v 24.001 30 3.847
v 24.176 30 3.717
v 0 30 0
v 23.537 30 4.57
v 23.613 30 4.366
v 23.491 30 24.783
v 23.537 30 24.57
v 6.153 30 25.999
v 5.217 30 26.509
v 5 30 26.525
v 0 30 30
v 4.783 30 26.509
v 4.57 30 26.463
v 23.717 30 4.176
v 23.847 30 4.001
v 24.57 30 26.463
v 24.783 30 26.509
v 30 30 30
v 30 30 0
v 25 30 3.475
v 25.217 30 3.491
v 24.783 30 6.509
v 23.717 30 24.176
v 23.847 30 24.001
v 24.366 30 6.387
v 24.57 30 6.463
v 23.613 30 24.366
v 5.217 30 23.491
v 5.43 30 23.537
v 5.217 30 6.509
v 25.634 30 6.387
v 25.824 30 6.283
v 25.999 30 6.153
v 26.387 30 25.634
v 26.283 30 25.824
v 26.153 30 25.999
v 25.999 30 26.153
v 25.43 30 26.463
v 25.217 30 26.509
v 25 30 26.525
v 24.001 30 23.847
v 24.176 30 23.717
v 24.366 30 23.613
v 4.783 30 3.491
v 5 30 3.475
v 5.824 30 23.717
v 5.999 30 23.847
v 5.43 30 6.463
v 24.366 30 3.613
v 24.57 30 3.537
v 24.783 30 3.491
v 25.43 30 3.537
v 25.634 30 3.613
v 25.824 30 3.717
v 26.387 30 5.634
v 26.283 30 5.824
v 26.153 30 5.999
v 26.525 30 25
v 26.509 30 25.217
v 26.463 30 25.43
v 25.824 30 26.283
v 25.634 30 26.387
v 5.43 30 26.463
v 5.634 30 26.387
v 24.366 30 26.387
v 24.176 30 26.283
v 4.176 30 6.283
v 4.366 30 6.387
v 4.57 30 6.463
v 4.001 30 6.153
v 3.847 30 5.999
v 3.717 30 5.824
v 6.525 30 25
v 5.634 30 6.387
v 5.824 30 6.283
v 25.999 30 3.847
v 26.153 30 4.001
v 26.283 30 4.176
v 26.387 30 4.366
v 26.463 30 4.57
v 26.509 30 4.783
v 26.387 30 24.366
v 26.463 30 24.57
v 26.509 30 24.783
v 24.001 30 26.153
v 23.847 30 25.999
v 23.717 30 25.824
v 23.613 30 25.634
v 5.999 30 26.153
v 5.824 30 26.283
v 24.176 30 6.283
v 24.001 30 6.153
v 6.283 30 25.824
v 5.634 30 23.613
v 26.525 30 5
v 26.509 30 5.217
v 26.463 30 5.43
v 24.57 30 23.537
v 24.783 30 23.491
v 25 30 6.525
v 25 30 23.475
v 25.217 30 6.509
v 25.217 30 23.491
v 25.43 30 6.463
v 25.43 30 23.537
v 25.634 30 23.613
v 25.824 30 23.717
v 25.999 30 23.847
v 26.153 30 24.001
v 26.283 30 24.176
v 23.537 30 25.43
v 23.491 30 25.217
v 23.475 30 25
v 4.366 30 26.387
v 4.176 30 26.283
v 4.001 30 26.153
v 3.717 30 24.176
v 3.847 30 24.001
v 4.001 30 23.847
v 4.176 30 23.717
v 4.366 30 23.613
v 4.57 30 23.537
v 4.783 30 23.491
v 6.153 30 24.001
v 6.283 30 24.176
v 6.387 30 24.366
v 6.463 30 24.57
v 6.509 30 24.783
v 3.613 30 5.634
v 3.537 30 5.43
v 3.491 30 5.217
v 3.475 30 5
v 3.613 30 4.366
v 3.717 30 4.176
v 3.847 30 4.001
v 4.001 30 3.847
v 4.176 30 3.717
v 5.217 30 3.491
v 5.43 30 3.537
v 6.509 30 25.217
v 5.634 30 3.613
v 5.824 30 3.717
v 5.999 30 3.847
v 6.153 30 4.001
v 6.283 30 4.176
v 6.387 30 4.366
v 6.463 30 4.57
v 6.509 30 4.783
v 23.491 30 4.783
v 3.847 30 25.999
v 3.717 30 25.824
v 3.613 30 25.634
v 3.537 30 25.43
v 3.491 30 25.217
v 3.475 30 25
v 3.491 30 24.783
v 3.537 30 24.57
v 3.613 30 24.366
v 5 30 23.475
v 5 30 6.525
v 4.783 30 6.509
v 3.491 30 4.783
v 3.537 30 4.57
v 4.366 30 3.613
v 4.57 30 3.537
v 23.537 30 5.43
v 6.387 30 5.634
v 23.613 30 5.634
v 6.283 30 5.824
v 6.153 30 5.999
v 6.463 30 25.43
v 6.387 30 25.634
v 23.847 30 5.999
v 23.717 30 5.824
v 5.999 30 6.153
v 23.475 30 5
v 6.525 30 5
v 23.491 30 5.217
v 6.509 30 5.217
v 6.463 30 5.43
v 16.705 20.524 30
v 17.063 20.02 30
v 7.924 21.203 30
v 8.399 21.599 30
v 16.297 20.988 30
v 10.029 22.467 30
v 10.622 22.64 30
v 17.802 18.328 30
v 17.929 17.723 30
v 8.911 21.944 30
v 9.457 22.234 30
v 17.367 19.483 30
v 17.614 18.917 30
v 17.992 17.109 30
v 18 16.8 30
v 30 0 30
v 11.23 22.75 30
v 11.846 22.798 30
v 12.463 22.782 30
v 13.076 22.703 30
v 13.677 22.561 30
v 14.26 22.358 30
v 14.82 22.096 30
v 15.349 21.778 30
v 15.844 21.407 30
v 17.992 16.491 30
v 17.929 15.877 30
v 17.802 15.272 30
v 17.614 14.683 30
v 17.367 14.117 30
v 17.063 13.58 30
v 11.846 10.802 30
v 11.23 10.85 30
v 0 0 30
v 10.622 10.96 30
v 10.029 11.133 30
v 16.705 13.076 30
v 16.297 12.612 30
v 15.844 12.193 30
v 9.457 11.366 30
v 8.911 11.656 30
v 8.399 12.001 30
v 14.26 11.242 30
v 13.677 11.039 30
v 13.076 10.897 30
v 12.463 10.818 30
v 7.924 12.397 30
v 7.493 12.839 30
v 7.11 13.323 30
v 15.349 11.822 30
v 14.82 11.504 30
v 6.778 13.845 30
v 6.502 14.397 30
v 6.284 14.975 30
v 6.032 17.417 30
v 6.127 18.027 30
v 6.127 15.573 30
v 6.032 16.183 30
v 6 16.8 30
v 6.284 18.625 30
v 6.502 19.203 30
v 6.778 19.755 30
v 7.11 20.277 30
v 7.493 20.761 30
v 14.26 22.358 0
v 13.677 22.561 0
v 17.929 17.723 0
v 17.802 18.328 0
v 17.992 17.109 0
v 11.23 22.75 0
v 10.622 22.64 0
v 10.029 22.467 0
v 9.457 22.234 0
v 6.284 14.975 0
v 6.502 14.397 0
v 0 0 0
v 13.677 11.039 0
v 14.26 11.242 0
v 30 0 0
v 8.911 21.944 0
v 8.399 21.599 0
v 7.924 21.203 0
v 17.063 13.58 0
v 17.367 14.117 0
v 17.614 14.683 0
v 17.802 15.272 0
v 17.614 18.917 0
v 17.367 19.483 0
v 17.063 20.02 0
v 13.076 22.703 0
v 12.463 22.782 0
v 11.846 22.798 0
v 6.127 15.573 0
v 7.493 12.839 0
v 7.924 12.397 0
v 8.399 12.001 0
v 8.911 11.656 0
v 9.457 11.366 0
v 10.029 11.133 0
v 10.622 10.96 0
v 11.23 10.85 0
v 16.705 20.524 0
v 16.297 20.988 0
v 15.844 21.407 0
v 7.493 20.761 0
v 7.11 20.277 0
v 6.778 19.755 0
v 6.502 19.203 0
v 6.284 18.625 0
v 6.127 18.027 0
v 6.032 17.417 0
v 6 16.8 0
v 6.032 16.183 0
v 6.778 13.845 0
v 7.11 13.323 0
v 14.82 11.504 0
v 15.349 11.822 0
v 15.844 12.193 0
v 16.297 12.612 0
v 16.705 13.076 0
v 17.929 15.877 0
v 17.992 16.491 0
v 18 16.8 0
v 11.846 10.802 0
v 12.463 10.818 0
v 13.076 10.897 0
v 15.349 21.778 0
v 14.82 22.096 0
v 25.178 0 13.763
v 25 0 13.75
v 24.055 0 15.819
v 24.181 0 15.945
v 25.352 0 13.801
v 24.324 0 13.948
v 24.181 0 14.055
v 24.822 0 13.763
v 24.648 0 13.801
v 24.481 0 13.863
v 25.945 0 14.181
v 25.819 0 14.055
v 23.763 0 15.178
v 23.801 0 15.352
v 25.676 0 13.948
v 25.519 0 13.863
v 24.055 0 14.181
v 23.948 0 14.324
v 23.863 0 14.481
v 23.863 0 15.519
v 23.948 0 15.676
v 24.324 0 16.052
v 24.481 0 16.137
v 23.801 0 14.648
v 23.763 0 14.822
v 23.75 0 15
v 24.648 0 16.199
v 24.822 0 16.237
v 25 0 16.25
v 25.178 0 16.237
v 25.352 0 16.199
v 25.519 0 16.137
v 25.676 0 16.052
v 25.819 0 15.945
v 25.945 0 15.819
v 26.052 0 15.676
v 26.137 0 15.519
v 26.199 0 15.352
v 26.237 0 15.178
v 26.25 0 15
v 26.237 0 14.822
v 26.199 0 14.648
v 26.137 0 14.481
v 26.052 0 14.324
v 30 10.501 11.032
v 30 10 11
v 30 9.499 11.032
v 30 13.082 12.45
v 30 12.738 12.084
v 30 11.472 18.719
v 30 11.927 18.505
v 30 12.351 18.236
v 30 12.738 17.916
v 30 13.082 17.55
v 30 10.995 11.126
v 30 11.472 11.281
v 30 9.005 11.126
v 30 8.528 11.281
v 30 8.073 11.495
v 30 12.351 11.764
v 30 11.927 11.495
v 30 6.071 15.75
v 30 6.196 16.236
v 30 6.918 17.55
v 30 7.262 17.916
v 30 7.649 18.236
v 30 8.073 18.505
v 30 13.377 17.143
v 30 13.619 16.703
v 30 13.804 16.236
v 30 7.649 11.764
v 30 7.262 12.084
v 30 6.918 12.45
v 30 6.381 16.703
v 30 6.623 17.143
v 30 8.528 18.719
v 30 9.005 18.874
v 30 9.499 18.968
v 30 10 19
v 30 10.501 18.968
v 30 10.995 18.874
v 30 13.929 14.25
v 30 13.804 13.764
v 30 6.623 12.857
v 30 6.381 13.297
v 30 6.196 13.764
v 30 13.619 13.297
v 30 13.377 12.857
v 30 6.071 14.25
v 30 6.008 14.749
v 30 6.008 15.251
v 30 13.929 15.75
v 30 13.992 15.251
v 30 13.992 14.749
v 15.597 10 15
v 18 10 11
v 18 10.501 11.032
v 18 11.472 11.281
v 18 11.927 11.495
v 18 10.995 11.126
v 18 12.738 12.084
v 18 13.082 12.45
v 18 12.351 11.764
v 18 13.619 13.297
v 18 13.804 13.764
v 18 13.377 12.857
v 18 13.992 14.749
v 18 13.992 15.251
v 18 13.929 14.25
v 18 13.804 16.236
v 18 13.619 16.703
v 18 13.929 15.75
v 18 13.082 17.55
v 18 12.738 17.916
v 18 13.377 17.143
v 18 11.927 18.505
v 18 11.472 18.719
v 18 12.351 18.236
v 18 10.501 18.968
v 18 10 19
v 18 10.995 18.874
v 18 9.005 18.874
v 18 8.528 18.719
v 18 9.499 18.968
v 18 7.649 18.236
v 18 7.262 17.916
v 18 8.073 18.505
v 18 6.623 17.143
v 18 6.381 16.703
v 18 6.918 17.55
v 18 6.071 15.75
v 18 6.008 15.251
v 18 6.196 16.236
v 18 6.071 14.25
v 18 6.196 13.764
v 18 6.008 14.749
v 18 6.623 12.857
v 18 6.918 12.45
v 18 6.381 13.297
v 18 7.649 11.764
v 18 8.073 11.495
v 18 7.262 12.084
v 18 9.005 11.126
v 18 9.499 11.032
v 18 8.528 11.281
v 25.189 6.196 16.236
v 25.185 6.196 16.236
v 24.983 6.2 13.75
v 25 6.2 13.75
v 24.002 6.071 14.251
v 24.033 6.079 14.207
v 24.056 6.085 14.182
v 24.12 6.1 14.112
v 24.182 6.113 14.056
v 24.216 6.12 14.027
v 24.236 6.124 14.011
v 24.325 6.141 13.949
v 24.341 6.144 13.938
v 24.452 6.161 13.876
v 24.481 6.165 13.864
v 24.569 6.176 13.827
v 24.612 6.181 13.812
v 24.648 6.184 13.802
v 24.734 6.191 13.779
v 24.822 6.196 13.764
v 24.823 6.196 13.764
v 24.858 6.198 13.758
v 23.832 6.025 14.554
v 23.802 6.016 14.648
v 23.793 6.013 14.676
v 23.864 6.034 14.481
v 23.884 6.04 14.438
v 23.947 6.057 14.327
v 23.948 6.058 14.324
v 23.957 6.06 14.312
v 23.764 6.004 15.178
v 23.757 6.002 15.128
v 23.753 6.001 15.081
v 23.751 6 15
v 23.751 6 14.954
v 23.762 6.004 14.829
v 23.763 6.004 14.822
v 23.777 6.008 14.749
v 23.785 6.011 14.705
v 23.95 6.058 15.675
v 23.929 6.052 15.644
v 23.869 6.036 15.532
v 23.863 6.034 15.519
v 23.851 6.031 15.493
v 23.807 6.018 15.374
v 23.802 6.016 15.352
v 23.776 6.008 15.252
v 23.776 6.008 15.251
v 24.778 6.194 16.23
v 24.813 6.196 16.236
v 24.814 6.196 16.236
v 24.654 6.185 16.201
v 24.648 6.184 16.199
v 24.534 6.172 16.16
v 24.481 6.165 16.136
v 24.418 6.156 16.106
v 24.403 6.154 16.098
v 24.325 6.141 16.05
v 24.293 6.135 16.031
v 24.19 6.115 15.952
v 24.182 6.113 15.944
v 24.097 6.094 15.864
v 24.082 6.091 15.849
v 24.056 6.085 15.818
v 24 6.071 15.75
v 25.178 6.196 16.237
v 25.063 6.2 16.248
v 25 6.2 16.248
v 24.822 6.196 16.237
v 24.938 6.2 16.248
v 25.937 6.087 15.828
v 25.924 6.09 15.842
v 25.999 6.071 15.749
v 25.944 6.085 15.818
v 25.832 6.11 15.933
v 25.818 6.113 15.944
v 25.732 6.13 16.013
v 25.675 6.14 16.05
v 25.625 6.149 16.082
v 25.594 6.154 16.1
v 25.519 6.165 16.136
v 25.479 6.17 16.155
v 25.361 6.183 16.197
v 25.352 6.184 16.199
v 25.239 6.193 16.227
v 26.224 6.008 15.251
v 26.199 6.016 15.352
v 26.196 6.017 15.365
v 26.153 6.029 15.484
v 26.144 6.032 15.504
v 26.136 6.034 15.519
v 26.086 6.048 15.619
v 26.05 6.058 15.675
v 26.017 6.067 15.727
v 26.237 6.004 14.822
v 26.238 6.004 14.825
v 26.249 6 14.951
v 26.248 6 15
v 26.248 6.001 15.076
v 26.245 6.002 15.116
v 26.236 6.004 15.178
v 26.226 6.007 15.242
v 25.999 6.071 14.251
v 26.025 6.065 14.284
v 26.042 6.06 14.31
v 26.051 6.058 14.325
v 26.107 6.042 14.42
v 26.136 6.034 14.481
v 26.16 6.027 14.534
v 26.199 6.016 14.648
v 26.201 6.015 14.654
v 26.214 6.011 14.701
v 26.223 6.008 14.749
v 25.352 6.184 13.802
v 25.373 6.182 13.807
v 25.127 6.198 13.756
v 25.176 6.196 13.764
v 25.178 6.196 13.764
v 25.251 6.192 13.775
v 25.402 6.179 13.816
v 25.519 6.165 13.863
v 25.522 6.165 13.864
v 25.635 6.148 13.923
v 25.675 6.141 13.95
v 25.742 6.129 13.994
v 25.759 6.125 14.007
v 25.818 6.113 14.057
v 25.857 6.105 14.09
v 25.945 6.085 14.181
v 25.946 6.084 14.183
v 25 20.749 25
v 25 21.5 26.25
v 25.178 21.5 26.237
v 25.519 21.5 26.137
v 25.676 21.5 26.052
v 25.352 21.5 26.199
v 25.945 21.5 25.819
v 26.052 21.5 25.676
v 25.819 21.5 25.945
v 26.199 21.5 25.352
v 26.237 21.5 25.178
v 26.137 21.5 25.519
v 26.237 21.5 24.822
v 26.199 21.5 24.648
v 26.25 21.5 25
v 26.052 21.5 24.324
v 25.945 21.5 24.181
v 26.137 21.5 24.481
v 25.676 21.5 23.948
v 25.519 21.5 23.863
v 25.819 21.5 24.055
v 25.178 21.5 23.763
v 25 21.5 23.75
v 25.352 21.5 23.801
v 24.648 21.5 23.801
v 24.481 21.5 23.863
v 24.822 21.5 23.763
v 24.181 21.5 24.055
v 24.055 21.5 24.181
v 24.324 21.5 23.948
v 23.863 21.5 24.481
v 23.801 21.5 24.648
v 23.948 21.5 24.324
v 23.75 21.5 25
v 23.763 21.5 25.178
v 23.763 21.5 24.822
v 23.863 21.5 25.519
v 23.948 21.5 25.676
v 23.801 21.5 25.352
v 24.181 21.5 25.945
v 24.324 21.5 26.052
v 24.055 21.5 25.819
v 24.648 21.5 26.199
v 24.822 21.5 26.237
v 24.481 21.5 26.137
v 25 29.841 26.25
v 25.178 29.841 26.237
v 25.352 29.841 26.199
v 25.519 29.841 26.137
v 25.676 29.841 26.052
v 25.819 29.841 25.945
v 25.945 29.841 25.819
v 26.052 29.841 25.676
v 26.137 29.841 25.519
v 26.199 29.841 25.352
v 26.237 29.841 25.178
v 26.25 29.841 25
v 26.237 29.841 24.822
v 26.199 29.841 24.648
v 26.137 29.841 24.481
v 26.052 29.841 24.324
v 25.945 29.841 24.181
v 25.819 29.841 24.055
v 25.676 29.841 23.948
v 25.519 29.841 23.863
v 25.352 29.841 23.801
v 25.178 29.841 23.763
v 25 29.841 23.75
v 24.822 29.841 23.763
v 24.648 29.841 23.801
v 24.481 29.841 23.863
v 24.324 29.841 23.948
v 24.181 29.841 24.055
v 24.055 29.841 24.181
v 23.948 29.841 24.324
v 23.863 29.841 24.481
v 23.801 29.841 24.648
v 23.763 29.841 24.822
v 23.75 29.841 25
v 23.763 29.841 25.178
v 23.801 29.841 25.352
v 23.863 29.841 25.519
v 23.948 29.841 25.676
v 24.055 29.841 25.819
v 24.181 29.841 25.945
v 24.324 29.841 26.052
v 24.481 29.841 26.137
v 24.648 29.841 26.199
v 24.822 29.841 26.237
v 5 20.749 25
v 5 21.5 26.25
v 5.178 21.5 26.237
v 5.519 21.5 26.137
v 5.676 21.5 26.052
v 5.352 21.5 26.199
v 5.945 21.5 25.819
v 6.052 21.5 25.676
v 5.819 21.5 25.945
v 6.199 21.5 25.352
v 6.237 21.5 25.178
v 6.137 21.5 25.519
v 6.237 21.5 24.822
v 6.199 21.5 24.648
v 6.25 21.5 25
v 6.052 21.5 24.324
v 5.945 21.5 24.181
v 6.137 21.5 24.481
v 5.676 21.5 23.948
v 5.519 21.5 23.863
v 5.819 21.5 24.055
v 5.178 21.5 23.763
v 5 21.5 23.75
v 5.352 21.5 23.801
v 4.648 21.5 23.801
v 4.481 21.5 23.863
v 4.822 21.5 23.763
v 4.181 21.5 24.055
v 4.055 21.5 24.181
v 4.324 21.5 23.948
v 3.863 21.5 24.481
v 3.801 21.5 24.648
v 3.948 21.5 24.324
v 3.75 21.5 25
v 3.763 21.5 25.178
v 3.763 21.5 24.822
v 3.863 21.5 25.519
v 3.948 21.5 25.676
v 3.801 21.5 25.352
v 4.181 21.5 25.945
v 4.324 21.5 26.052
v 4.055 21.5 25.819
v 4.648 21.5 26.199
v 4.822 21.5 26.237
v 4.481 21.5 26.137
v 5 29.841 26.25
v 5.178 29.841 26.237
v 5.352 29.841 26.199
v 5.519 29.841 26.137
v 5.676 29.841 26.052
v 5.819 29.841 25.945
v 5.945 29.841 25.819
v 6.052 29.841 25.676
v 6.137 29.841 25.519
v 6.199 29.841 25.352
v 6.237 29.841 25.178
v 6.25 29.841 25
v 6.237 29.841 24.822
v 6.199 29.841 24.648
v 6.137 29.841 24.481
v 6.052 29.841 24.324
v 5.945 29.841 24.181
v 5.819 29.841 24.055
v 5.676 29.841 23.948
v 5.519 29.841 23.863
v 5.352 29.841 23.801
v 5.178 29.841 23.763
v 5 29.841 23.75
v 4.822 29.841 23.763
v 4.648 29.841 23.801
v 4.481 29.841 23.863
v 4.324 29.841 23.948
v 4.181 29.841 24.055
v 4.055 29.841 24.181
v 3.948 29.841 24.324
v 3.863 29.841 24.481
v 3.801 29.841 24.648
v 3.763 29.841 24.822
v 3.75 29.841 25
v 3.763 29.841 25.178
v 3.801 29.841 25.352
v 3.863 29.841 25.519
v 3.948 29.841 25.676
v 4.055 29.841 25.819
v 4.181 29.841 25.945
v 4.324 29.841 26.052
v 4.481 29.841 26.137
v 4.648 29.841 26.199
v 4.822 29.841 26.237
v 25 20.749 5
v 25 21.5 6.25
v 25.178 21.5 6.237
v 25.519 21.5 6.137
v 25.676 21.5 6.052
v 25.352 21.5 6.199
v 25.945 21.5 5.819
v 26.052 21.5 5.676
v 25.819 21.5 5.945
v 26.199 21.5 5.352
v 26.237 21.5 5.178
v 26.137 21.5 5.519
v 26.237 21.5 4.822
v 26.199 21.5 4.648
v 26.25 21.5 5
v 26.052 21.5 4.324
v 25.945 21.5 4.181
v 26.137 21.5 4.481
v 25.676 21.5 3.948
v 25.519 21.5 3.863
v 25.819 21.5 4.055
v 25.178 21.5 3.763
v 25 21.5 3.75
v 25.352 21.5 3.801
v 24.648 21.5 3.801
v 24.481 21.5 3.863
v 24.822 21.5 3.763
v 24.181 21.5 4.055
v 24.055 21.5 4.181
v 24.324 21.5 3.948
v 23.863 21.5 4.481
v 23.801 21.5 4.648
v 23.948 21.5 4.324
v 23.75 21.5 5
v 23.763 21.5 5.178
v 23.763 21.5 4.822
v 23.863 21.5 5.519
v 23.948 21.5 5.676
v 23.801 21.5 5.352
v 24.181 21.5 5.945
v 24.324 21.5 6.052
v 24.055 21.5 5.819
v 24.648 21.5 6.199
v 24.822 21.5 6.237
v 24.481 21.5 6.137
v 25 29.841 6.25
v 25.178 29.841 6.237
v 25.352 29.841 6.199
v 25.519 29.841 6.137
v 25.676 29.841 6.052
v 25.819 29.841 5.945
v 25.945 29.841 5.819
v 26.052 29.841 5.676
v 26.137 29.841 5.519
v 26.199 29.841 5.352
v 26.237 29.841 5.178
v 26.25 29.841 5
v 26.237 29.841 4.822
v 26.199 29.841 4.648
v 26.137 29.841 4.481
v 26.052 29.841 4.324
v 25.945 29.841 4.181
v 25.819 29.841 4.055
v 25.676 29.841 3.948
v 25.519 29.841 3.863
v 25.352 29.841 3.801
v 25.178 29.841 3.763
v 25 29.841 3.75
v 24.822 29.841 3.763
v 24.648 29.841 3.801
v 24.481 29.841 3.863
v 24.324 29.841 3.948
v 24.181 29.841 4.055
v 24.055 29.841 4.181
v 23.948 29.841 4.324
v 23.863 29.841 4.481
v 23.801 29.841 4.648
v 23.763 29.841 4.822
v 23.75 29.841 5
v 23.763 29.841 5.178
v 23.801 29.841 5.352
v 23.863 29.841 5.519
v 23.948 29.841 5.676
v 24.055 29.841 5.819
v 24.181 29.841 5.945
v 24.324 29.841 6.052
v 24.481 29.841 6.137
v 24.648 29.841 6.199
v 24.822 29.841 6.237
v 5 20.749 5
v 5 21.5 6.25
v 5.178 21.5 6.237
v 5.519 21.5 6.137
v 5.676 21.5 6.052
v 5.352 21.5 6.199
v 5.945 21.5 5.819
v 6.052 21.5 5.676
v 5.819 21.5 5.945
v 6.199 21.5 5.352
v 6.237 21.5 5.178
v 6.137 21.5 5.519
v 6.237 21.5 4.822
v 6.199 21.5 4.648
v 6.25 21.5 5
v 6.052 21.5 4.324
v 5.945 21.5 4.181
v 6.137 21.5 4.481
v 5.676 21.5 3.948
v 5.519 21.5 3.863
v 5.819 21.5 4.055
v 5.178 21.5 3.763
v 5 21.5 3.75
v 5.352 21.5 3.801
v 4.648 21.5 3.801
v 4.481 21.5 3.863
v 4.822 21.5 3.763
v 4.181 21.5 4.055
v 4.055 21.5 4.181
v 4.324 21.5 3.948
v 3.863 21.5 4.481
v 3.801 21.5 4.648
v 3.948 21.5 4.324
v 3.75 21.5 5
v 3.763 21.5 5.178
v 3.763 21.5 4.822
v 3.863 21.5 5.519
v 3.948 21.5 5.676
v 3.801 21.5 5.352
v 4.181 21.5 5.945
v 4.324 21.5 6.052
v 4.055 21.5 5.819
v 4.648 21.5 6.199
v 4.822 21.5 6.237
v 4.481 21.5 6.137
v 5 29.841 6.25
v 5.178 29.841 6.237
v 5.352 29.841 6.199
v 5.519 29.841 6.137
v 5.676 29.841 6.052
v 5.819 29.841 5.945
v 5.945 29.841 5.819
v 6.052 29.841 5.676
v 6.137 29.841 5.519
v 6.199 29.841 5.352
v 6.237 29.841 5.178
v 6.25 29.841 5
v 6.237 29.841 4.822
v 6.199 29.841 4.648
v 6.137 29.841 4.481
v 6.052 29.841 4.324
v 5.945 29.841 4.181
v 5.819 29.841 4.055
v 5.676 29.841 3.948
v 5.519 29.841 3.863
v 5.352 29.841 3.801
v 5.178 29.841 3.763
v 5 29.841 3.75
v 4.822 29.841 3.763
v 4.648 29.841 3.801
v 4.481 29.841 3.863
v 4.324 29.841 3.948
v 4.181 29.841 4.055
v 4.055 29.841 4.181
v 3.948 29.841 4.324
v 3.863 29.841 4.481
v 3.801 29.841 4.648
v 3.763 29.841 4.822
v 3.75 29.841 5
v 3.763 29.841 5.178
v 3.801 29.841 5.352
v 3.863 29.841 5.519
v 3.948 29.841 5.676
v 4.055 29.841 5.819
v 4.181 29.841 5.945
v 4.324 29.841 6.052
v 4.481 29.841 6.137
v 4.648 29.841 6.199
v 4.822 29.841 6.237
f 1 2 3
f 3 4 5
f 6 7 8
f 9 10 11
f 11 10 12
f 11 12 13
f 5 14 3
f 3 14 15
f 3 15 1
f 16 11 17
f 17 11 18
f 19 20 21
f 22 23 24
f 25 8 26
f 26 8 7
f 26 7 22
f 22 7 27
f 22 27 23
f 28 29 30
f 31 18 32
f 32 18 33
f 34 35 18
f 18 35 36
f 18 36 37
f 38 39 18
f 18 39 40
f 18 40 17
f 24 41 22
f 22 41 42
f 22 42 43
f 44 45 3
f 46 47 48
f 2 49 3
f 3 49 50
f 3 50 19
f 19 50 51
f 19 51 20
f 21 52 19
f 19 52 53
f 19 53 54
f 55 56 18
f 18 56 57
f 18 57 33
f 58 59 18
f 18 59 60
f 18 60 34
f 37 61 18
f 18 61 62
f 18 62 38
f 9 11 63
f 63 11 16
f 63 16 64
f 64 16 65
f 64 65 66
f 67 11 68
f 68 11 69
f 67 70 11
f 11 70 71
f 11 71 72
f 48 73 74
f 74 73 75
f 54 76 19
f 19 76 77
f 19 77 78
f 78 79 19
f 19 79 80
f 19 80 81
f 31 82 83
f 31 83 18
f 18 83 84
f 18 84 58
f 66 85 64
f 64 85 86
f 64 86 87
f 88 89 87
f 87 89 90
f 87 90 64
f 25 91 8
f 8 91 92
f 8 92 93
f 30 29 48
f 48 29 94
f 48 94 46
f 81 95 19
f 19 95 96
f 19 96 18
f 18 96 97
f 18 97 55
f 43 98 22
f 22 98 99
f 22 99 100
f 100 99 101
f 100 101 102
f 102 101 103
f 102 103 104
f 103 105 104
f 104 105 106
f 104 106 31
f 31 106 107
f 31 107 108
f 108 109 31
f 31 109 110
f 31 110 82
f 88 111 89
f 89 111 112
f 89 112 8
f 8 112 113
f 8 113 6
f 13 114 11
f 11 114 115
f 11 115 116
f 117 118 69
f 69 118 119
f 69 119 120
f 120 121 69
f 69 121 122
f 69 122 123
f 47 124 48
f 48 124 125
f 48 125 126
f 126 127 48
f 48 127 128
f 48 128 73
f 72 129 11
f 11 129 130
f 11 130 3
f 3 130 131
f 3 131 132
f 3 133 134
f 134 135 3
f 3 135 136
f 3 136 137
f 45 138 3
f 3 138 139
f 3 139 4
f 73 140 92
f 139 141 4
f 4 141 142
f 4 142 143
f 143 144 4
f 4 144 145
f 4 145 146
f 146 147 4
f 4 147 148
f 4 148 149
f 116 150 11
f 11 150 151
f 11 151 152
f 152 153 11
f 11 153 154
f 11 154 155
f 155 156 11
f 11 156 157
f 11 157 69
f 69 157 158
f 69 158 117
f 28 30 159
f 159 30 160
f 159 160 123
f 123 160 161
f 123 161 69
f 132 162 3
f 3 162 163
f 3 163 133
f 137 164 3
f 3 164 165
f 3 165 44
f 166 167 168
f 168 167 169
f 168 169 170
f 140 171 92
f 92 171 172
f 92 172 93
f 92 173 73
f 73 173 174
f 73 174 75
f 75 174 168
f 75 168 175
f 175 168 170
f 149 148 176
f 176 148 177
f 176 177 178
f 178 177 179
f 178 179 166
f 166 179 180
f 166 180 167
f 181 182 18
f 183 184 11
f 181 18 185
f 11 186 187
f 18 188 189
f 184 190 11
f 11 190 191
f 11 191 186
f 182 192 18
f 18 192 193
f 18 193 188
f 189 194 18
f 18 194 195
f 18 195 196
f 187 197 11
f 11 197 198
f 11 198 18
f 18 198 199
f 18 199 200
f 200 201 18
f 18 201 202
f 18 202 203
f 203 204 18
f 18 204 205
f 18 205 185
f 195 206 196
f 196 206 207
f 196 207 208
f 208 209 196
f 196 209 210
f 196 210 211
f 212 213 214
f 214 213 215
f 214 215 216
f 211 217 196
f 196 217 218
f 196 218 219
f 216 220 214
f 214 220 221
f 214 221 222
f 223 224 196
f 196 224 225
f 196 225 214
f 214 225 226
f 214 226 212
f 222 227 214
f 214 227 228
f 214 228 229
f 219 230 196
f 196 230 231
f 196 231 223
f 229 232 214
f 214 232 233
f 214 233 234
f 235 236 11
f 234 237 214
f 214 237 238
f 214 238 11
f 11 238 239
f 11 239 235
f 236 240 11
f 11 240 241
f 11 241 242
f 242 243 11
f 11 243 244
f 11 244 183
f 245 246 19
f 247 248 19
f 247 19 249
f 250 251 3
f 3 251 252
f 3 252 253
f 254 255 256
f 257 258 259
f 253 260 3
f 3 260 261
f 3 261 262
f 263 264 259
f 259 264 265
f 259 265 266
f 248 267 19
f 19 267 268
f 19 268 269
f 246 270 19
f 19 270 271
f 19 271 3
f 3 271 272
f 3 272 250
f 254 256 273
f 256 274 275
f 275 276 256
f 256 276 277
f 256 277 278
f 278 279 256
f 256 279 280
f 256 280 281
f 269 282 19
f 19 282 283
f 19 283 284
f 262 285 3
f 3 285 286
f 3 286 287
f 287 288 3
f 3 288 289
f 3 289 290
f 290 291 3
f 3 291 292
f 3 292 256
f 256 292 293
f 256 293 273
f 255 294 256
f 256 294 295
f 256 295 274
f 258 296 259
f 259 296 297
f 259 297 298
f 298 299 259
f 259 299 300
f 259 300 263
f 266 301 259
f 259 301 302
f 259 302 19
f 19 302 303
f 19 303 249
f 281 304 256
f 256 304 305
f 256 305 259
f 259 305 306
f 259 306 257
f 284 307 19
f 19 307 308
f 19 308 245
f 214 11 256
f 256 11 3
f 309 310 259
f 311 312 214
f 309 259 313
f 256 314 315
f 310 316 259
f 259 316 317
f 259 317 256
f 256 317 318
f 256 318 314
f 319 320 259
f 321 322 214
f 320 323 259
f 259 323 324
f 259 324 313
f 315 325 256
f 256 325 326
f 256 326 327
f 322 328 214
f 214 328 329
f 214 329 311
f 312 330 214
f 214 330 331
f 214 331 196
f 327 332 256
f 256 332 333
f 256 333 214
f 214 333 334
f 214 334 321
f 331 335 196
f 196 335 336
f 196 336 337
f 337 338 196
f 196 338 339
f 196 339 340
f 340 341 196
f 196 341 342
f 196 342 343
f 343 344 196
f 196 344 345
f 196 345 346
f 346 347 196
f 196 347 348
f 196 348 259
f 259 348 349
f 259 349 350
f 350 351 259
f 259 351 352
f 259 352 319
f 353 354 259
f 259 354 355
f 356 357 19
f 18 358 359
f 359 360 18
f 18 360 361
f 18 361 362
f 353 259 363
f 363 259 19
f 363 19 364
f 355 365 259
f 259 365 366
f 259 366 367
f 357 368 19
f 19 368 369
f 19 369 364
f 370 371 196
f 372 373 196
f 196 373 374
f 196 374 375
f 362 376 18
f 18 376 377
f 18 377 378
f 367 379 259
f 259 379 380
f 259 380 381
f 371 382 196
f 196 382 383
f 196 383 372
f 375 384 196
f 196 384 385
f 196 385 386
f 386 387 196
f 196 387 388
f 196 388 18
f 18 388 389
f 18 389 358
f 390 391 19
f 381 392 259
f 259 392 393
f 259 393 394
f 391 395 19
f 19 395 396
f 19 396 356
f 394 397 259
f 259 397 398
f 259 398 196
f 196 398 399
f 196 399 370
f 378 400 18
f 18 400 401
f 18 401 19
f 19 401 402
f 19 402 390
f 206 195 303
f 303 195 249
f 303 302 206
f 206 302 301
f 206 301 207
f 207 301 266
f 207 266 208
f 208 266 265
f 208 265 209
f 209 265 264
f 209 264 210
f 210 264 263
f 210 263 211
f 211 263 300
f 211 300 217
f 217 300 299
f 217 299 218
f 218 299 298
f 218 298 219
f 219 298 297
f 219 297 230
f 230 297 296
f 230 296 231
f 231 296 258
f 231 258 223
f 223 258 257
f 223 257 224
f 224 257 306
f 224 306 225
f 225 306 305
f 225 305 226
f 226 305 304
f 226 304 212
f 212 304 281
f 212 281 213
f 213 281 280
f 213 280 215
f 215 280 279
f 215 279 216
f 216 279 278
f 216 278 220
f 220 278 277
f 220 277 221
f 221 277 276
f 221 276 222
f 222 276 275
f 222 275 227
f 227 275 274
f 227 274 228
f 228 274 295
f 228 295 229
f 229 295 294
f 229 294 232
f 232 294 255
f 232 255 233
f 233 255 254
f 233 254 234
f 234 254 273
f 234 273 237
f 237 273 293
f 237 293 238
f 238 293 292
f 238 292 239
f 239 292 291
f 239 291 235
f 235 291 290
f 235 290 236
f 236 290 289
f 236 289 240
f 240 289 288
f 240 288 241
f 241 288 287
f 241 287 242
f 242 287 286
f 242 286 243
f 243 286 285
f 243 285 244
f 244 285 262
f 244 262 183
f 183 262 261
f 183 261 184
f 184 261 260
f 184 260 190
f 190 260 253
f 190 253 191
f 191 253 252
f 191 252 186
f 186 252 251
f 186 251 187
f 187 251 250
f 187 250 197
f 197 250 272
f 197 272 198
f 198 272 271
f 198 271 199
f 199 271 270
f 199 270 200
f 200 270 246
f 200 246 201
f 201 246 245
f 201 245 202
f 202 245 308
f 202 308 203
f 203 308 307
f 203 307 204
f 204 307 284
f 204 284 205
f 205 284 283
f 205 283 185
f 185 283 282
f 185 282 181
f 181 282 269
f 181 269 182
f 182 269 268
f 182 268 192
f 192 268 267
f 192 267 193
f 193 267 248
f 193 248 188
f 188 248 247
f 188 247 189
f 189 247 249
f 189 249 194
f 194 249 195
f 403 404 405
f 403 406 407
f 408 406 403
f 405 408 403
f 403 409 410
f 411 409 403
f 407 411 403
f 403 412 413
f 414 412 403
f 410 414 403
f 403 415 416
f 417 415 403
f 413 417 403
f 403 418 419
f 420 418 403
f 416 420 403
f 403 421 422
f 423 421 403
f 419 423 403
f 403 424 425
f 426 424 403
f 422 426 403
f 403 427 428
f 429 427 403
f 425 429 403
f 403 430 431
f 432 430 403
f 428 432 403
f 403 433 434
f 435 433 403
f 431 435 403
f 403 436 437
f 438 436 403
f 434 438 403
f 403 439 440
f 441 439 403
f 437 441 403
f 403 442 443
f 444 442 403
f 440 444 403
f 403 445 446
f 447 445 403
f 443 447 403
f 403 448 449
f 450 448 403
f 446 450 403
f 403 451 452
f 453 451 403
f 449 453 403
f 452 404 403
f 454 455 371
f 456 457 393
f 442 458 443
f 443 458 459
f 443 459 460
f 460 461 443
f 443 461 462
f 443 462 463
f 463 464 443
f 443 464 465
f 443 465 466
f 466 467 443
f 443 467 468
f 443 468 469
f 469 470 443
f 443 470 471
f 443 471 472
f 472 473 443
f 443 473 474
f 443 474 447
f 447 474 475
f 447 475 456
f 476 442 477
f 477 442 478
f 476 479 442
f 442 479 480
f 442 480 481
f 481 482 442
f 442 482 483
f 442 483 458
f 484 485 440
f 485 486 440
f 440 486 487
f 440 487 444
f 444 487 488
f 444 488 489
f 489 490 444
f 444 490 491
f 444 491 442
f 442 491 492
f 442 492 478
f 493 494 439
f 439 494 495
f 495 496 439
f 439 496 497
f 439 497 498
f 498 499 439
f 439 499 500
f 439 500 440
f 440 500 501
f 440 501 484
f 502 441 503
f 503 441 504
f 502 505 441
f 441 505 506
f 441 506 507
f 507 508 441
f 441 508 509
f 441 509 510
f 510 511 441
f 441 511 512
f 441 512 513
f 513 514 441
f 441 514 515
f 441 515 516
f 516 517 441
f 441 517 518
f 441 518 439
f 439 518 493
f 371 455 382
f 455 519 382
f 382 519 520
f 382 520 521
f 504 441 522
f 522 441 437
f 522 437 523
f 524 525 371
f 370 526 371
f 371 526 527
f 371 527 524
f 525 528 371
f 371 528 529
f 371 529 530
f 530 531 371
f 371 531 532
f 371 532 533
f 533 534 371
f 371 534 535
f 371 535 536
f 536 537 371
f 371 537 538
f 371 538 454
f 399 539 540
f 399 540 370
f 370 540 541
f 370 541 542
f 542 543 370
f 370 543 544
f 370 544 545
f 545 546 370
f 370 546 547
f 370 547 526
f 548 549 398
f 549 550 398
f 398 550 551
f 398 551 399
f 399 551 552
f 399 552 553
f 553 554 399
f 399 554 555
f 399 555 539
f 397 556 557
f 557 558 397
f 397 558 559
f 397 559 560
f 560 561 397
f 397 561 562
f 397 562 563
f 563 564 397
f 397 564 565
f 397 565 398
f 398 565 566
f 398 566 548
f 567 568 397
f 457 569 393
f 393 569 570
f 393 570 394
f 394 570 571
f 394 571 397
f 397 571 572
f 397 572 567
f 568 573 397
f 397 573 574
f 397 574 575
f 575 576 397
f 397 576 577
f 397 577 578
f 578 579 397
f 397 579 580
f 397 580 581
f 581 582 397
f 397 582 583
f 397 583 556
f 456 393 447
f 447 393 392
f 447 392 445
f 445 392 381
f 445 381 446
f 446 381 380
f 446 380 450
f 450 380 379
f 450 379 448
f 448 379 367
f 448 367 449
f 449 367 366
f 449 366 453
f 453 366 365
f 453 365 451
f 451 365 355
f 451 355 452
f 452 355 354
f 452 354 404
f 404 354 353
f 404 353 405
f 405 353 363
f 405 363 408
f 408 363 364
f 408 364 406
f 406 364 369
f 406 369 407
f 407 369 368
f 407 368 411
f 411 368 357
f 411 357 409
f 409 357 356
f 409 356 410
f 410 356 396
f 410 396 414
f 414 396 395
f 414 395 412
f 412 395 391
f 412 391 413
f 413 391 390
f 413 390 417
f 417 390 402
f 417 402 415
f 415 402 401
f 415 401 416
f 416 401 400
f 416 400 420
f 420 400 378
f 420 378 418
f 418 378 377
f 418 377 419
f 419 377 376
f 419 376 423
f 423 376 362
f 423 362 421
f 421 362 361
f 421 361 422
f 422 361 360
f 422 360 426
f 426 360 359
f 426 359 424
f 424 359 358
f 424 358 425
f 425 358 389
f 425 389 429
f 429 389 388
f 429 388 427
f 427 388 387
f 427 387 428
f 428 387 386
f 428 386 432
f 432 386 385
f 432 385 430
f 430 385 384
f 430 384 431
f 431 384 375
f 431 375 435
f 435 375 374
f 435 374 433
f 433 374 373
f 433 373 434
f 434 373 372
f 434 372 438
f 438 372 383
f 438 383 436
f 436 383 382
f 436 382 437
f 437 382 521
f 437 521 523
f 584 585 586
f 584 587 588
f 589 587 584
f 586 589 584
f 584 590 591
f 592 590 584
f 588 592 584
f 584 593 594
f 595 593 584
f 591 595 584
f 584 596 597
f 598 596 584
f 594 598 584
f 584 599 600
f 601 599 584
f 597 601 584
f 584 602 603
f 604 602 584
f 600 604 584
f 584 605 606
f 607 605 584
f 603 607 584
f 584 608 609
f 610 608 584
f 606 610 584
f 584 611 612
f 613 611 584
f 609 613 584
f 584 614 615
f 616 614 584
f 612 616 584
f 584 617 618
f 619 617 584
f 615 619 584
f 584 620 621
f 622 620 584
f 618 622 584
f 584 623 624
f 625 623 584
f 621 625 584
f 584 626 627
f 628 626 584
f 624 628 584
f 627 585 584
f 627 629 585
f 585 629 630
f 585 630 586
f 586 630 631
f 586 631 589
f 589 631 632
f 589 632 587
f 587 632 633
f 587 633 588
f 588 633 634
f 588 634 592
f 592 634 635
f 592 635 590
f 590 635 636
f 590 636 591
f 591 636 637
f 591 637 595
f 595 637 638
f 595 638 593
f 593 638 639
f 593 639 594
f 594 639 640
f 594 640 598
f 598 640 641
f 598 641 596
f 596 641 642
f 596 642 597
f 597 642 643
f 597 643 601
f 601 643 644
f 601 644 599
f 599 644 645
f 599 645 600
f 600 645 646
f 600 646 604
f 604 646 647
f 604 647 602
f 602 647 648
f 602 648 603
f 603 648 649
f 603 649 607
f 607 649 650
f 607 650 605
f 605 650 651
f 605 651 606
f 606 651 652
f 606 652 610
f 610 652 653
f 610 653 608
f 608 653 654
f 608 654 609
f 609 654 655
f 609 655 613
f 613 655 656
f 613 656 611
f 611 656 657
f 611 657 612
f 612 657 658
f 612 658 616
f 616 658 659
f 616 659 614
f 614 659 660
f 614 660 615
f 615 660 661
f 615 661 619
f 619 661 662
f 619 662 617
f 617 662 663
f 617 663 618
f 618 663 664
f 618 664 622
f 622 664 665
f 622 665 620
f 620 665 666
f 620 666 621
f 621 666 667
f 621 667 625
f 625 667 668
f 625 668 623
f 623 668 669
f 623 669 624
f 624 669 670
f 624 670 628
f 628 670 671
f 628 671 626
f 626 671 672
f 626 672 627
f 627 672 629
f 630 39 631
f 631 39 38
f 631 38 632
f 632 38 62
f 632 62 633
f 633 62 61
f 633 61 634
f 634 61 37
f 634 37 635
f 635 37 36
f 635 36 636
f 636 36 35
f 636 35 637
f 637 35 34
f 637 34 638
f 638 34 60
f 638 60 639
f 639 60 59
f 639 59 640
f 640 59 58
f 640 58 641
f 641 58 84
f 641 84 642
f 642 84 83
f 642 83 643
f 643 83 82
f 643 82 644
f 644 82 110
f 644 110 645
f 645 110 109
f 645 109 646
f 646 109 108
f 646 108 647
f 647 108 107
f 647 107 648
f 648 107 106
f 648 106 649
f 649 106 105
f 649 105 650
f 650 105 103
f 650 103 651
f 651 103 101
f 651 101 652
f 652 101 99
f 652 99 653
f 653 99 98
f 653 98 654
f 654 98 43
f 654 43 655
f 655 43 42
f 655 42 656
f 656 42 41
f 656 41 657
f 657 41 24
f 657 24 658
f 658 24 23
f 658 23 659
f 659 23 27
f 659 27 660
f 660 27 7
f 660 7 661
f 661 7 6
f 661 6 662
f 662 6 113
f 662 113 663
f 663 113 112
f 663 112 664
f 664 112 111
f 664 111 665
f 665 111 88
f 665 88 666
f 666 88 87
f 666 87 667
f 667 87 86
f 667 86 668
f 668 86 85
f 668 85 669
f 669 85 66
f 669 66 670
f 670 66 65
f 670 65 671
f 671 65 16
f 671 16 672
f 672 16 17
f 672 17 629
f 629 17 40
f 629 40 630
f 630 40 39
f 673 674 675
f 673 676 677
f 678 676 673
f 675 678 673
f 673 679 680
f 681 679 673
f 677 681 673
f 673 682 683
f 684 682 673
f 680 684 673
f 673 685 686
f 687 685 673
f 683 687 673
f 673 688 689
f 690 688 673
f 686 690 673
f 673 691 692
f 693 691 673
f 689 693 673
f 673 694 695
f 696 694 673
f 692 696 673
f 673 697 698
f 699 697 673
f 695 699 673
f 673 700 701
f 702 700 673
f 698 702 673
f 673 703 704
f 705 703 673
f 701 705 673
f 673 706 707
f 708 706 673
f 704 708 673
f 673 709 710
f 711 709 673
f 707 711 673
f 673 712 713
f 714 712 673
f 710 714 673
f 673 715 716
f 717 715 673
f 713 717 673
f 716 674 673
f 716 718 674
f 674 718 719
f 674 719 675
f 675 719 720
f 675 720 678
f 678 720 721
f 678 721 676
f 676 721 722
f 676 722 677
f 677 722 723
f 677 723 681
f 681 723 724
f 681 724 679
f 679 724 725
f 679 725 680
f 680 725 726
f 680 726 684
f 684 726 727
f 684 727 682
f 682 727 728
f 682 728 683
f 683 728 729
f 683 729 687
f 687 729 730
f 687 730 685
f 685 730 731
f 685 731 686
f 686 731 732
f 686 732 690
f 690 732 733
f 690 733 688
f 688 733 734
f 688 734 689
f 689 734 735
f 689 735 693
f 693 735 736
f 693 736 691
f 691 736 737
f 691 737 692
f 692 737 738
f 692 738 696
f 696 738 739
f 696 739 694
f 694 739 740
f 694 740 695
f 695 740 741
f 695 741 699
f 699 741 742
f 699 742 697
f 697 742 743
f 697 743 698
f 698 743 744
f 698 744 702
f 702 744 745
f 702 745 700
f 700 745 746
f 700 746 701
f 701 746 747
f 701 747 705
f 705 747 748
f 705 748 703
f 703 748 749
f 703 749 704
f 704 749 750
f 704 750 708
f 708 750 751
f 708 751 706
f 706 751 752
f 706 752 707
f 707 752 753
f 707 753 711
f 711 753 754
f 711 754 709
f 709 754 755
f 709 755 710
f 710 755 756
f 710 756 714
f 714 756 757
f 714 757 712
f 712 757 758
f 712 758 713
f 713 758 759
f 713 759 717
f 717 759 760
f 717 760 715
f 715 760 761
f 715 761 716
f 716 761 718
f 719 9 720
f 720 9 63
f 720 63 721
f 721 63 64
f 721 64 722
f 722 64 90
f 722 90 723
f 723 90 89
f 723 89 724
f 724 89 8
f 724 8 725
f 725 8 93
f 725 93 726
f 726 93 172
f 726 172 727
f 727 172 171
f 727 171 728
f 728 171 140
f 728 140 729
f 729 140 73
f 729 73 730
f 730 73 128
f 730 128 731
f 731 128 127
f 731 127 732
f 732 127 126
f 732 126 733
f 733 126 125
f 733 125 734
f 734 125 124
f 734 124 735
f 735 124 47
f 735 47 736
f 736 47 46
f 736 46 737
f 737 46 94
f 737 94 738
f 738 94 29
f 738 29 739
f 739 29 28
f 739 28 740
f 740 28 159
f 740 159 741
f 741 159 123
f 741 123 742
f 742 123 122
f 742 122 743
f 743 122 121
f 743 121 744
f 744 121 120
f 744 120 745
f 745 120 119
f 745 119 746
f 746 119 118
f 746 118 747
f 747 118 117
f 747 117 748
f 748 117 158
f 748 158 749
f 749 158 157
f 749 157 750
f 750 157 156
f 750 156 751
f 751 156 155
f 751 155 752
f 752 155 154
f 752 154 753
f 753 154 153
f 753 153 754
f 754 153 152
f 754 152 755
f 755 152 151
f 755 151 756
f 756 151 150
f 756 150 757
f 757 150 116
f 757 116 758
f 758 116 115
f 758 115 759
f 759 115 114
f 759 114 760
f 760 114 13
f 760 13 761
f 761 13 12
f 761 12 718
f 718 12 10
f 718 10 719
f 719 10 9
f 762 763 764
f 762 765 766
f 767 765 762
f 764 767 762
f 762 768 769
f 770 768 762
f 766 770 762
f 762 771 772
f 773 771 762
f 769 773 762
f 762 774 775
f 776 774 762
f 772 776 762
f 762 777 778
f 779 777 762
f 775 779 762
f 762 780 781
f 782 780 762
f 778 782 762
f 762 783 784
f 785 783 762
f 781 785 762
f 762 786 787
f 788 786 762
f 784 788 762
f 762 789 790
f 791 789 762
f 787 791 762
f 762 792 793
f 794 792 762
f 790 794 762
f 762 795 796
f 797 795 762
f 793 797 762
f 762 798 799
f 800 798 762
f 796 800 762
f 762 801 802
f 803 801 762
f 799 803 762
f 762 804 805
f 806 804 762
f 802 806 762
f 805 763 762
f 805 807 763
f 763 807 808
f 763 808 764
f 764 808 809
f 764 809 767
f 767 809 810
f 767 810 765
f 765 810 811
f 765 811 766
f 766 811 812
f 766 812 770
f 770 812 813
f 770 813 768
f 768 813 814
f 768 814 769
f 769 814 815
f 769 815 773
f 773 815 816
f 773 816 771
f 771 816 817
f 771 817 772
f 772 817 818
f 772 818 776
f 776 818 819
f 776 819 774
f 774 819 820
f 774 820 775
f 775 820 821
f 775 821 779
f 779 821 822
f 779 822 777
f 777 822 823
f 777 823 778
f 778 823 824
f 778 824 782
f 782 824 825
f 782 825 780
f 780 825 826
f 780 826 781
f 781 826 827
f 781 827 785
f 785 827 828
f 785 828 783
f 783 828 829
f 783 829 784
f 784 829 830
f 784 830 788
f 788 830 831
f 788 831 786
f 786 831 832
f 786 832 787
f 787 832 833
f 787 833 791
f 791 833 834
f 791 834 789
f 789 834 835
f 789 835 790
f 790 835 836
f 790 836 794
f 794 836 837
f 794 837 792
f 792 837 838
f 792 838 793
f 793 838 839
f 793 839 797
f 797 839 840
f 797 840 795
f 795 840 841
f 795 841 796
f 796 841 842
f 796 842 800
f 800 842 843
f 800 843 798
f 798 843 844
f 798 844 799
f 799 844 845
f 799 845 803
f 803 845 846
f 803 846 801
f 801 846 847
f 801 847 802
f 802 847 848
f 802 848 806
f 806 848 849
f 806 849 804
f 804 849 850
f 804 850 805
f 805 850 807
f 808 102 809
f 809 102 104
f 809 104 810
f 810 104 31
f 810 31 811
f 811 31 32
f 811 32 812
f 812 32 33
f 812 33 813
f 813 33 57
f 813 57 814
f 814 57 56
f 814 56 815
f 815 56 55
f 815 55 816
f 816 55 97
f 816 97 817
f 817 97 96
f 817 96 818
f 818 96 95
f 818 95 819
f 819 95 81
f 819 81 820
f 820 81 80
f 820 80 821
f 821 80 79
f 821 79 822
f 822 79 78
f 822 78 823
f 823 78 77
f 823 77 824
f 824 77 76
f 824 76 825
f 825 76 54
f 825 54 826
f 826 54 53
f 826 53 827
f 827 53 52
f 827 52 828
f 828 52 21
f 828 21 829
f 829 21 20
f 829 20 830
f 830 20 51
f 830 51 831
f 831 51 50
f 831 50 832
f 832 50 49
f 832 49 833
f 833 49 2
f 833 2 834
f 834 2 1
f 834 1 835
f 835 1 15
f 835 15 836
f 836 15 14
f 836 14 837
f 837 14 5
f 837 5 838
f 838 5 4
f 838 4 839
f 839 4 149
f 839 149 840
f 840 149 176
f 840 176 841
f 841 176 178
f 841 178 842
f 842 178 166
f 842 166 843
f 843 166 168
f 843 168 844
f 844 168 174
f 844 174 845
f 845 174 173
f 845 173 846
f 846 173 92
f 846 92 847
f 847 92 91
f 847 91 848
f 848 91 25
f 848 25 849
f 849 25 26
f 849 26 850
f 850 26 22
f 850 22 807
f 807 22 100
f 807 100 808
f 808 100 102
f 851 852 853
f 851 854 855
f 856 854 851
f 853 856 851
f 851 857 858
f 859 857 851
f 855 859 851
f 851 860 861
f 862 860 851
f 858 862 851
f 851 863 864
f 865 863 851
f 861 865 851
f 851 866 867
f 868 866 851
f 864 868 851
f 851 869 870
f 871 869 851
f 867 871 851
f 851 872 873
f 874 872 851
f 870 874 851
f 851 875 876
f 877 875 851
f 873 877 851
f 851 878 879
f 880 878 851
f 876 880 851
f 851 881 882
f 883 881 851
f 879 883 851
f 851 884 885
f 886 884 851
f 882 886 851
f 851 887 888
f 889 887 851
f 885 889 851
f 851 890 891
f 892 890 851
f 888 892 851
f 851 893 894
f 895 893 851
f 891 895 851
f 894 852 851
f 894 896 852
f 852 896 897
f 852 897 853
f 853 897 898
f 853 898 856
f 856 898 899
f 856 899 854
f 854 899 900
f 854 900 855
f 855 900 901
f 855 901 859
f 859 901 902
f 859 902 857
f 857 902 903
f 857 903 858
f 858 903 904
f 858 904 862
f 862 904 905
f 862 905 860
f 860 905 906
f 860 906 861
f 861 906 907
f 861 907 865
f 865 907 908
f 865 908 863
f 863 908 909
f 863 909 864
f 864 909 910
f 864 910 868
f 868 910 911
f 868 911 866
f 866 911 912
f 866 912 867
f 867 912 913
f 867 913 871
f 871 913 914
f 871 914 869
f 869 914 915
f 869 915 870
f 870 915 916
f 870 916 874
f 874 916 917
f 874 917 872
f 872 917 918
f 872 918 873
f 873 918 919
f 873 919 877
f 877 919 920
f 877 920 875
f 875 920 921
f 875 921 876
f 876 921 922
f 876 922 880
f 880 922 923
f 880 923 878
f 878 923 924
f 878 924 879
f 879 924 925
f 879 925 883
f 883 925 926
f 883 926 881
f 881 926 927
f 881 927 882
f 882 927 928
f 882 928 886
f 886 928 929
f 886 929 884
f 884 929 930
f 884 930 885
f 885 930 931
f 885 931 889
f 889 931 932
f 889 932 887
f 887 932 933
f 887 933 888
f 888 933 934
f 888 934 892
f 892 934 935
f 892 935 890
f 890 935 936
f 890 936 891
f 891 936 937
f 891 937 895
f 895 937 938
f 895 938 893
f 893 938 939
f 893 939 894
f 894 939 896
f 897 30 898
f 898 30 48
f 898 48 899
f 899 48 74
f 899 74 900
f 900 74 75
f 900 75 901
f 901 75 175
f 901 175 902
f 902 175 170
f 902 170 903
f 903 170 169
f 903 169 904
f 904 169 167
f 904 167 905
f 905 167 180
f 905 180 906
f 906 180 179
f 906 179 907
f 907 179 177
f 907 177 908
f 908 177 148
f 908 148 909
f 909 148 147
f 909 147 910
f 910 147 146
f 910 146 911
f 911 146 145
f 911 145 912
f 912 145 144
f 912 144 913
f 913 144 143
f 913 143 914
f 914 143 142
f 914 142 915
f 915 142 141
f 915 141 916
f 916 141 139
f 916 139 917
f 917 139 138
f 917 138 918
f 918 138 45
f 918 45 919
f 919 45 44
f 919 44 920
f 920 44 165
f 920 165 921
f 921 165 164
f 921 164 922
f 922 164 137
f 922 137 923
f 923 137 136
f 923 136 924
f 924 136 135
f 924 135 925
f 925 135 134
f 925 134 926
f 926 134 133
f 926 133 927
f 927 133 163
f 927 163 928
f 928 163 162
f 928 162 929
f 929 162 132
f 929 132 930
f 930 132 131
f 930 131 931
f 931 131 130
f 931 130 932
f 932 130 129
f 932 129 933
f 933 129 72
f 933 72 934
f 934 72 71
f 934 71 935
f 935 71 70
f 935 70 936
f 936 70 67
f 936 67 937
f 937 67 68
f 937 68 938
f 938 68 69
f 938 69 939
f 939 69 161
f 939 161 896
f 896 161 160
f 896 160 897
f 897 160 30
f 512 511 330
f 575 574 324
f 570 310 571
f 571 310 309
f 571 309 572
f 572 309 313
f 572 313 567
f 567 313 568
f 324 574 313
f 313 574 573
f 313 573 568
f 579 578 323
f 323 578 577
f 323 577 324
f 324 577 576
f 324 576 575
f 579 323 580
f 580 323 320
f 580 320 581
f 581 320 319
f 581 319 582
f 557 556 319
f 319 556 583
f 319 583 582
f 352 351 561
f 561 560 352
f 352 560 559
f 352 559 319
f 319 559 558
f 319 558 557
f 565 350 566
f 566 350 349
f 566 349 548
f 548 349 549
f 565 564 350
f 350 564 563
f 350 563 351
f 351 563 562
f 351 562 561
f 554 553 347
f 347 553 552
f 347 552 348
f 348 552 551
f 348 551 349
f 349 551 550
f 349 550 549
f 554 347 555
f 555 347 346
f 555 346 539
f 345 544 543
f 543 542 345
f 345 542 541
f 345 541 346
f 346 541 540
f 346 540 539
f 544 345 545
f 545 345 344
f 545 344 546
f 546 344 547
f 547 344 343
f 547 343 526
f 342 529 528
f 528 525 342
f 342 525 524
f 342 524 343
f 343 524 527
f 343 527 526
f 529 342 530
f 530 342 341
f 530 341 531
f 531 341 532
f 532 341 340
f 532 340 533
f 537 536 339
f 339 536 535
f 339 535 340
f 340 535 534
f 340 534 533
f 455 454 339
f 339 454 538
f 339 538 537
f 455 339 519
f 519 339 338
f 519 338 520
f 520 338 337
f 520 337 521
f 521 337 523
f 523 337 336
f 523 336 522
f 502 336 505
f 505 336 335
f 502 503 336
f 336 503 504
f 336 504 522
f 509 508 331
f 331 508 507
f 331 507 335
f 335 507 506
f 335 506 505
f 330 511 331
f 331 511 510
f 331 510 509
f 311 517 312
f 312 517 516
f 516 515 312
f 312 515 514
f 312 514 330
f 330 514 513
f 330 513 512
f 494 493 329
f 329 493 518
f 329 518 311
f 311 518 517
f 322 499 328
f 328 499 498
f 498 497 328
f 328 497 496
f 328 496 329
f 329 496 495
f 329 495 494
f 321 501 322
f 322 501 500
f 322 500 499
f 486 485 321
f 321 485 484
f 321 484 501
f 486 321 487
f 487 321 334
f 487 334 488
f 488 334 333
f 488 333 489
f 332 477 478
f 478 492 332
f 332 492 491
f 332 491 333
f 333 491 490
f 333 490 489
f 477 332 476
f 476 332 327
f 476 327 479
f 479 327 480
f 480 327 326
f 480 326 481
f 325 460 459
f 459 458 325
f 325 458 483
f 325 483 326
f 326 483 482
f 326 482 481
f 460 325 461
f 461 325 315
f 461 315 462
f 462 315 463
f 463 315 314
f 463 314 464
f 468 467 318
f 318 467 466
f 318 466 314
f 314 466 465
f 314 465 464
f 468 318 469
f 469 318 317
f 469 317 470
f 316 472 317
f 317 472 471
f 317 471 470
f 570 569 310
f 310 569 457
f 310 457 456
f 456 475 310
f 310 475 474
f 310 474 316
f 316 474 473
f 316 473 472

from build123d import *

# Parameters (mm, degrees)
SCHIZZO1_W                     = 30
SCHIZZO1_H                     = 30
SCHIZZO1_R                     = 6
ESTRUSIONE_ESTRUSIONE1_DEPTH   = 30
F_8_0_8_DIAMETER_HOLE1_D       = 8
F_8_0_8_DIAMETER_HOLE1_DEPTH   = 12
F_8_0_8_DIAMETER_HOLE1_TIP     = 2.403442476
FORO_FILETTATO_M3_1_AT_2_COUNT = 2
FORO_FILETTATO_M3_1_AT_2_PITCH = 20
SKETCH1_R                      = 1.25
CUT_EXTRUDE1_DEPTH             = 10


with BuildPart() as part:
    # Schizzo1 → Estrusione-Estrusione1 (new body)
    with BuildSketch(Plane.XY):
        with Locations((15, 15)):
            Rectangle(SCHIZZO1_W, SCHIZZO1_H)
        with Locations((12, 16.8)):
            Circle(SCHIZZO1_R, mode=Mode.SUBTRACT)
    extrude(amount=ESTRUSIONE_ESTRUSIONE1_DEPTH)

    # Ø8.0 (8) Diameter Hole1
    with Locations(Plane(origin=(30, 0, 0), x_dir=(0, 0, -1), z_dir=(1, 0, 0))):
        with Locations((-15, 10)):
            Hole(F_8_0_8_DIAMETER_HOLE1_D / 2, depth=F_8_0_8_DIAMETER_HOLE1_DEPTH)
            with Locations((0, 0, -(F_8_0_8_DIAMETER_HOLE1_DEPTH + F_8_0_8_DIAMETER_HOLE1_TIP / 2))):  # 118° drill point
                Cone(0, F_8_0_8_DIAMETER_HOLE1_D / 2, F_8_0_8_DIAMETER_HOLE1_TIP, mode=Mode.SUBTRACT)

    # Schizzo7 → Foro filettato M3-1 (revolve, cut)
    with BuildSketch(Plane(origin=(5, 30, 25), x_dir=(0, 0, 1), z_dir=(1, 0, 0))):
        Polygon((0, 0), (0, 9.251075774), (1.25, 8.5), (1.25, 0.158771324), (1.525, 0), align=None)
    foro_filettato_m3_1 = revolve(axis=Axis((5, 36.35, 25), (0, -1, 0)), mode=Mode.SUBTRACT)

    # Foro filettato M3-1 at 2: Foro filettato M3-1 ×2
    with Locations(*[(i * FORO_FILETTATO_M3_1_AT_2_PITCH, 0, 0) for i in range(1, FORO_FILETTATO_M3_1_AT_2_COUNT)]):
        add(foro_filettato_m3_1, mode=Mode.SUBTRACT)

    # Specchia1: Foro filettato M3-1 across plane
    add(foro_filettato_m3_1.mirror(Plane.XY.offset(15)), mode=Mode.SUBTRACT)

    # Specchia1 copy 1 sketch → Specchia1 copy 1 (revolve, cut)
    with BuildSketch(Plane(origin=(25, 30, 5), x_dir=(0, 0, -1), z_dir=(1, 0, 0))):
        Polygon((0, 0), (0, -9.251075774), (1.25, -8.5), (1.25, -0.158771324), (1.525, 0), align=None)
    revolve(axis=Axis((25, 36.35, 5), (0, 1, 0)), mode=Mode.SUBTRACT)

    # Sketch1 → Cut-Extrude1 (cut)
    with BuildSketch(Plane.XZ):
        with Locations(Location((25, 15, 0), (0, 0, 270))):
            Circle(SKETCH1_R)
    extrude(amount=-CUT_EXTRUDE1_DEPTH, mode=Mode.SUBTRACT)


solid = part.part
